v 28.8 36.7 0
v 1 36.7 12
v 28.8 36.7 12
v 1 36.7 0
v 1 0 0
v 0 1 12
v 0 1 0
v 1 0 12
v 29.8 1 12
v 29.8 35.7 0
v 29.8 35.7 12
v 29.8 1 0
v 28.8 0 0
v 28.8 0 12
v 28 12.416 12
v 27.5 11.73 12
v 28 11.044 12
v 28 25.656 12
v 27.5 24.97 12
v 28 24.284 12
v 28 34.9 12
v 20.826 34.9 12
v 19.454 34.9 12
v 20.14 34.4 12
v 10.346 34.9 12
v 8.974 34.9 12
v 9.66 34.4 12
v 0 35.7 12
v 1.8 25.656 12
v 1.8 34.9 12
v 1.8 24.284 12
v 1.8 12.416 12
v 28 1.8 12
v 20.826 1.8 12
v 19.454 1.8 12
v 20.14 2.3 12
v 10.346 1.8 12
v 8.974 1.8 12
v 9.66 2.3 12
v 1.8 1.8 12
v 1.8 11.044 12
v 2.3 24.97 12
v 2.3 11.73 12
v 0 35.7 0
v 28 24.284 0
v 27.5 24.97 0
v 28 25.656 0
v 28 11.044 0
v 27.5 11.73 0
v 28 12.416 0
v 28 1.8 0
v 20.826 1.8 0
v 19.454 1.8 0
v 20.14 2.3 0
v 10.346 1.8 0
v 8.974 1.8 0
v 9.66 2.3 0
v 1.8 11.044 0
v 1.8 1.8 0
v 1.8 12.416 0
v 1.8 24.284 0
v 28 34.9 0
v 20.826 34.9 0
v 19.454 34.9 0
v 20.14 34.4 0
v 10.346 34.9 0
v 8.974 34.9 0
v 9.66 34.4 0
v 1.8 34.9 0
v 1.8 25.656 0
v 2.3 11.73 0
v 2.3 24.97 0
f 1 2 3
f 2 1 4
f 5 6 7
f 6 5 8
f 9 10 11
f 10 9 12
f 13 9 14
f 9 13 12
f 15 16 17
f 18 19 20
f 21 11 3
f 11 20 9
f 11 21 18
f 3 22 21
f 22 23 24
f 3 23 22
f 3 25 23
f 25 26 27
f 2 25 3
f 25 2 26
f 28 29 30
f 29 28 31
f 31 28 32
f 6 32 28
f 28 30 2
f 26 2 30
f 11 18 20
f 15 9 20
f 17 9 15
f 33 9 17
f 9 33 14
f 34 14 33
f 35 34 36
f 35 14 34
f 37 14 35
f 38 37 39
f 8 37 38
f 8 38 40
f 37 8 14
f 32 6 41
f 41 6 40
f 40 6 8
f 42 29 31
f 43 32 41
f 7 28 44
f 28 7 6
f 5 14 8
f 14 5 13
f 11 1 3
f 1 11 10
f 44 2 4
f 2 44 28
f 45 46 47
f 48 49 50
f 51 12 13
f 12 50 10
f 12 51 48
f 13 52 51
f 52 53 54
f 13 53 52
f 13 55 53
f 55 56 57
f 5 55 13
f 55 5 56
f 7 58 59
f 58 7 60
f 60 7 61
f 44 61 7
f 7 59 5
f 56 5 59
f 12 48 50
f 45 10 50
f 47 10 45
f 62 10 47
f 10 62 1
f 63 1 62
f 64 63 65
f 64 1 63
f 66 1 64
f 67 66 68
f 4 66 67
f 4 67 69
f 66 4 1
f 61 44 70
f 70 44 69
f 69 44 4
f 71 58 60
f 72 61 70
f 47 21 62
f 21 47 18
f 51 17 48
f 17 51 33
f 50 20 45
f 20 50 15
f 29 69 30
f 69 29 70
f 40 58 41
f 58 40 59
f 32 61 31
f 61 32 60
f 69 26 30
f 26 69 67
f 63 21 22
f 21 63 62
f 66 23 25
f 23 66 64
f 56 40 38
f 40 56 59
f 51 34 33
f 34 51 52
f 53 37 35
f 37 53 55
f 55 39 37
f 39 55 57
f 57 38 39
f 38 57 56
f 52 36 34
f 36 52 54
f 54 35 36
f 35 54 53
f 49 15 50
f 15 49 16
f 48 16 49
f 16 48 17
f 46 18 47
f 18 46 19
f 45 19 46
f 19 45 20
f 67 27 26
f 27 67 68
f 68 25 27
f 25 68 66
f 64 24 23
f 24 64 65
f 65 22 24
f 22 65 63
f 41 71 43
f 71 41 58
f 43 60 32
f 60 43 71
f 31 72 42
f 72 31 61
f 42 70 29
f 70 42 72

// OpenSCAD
// file: pico_case.scad
// =====================================================================
// Case for a Raspberry Pi Pico 2 with soldered pin headers (pins pointing DOWN)
// and DuPont jumper wires plugged onto the pins.
// Gehaeuse fuer einen Pico 2 mit angeloeteten Stiftleisten (Pins nach UNTEN)
// und aufgesteckten DuPont-Kabeln.
//
//   TRAY: Pico rests on 4 standoffs with pegs; the DuPont plugs hang into the space
//         below the board; the wires leave through a slot in the end wall.
//   LID:  closes the top, presses the Pico down with 4 posts, window over BOOTSEL + LED.
//
// openscad -D 'part="tray"' -o pico_tray.stl pico_case.scad
// part = "assembly" | "tray" | "lid"
// =====================================================================

part = "assembly";

/* ---- Pico 2 (official mechanical drawing) ---- */
pico_l = 51;  pico_w = 21;  pico_t = 1.0;
hole_x = [2.0, 49.0];  hole_y = [4.8, 16.2];  hole_d = 2.1;   // mounting holes, from the USB end
usb_w_open = 12;   // opening for the plug (overmold), not just the socket
usb_h_open = 7.5;
usb_below  = 2.2;  // opening reaches this far below the board top (plug overmold is centred on the socket)
bootsel_x  = 12.5; // centre of the BOOTSEL window, from the USB end (button sits ~12-13 mm in)
bootsel_win = [12, 11];

/* ---- what hangs below the board: MEASURE (header plastic + DuPont plug + wire bend) ---- */
under_pcb = 24;    // 2.5 header plastic + 14 DuPont housing + ~7 mm for the wires to bend sideways
above_pcb = 4.5;   // space above the board top (USB socket ~3 mm)

/* ---- case ---- */
wall = 2.0;  floor_t = 1.6;  top_t = 1.6;
clr  = 0.4;        // around the board
extra_l = 10;      // extra room beyond the far end of the Pico (small parts, wire bends)
fit  = 0.2;        // lid rim play
lip_h = 3.0;       // lid rim depth

/* ---- wire exit ---- */
exit_end  = true;  // slot in the end wall opposite the USB socket
exit_side = false; // additional slot in one long side
exit_w = 20;  exit_h = 12;

// ---------------------------------------------------------------------
in_l = pico_l + 2 * clr + extra_l;
in_w = pico_w + 2 * clr;
out_l = in_l + 2 * wall;
out_w = in_w + 2 * wall;
z_pcb_bot = floor_t + under_pcb;
z_pcb_top = z_pcb_bot + pico_t;
z_lid     = z_pcb_top + above_pcb;          // lid underside = tray wall top
total_h   = z_lid + top_t;
bx = wall + clr;  by = wall + clr;          // board origin (USB end at x = bx)
echo(str("Pico case outer size: ", out_l, " x ", out_w, " x ", total_h, " mm"));

module tray() {
    difference() {
        cube([out_l, out_w, z_lid]);
        translate([wall, wall, floor_t]) cube([in_l, in_w, z_lid]);
        // USB opening (open towards the top, the lid closes it)
        translate([-1, by + pico_w / 2 - usb_w_open / 2, z_pcb_top - usb_below]) cube([wall + 2, usb_w_open, z_lid]);
        // wire exits at floor level
        if (exit_end)  translate([out_l - wall - 1, (out_w - exit_w) / 2, floor_t]) cube([wall + 2, exit_w, exit_h]);
        if (exit_side) translate([bx + pico_l / 2 - exit_w / 2, -1, floor_t]) cube([exit_w, wall + 2, exit_h]);
    }
    // standoffs with pegs into the mounting holes (thin enough to clear the DuPont plugs in the pin rows)
    for (x = hole_x, y = hole_y) translate([bx + x, by + y, 0]) {
        cylinder(d = 3.2, h = z_pcb_bot, $fn = 32);
        cylinder(d1 = 7, d2 = 3.2, h = 6, $fn = 32);          // wide foot below the DuPont plugs: stiffer, prints better
        cylinder(d = hole_d - 0.35, h = z_pcb_bot + pico_t + 0.8, $fn = 24);
    }
}

module lid() {
    difference() {
        union() {
            translate([0, 0, z_lid]) cube([out_l, out_w, top_t]);
            // rim inside the walls on three sides (the USB end stays open for the plug)
            difference() {
                translate([wall + fit, wall + fit, z_lid - lip_h]) cube([in_l - 2 * fit, in_w - 2 * fit, lip_h + 0.01]);
                translate([wall + fit - 1, wall + fit + 1.2, z_lid - lip_h - 1]) cube([in_l - 2 * fit - 0.2, in_w - 2 * fit - 2.4, lip_h + 2]);   // open at the USB end
            }
            // posts pressing the board onto the standoffs (hollow: the pegs poke into them)
            for (x = hole_x, y = hole_y) translate([bx + x, by + y, z_pcb_top + 0.1])
                cylinder(d = 3.2, h = z_lid - z_pcb_top, $fn = 32);
        }
        for (x = hole_x, y = hole_y) translate([bx + x, by + y, z_pcb_top - 1]) cylinder(d = hole_d + 0.3, h = 2.0, $fn = 24);
        // BOOTSEL / LED window
        translate([bx + bootsel_x - bootsel_win[0] / 2, by + pico_w / 2 - bootsel_win[1] / 2, z_lid - 1])
            cube([bootsel_win[0], bootsel_win[1], top_t + 2]);
    }
}

module pico_dummy() {
    color("#2e7d32") translate([bx, by, z_pcb_bot]) difference() {
        cube([pico_l, pico_w, pico_t]);
        for (x = hole_x, y = hole_y) translate([x, y, -1]) cylinder(d = hole_d, h = 3, $fn = 16);
    }
    color("#bbbbbb") translate([bx - 1.3, by + pico_w / 2 - 4, z_pcb_top]) cube([5.7, 8, 2.8]);   // USB socket
    for (i = [0:19], row = [1.61, pico_w - 1.61]) {                                              // header + DuPont plugs
        color("#222222") translate([bx + 1.37 + i * 2.54 - 1.27, by + row - 1.27, z_pcb_bot - 2.5]) cube([2.54, 2.54, 2.5]);
        color("#1565c0") translate([bx + 1.37 + i * 2.54 - 1.25, by + row - 1.25, z_pcb_bot - 2.5 - 14]) cube([2.5, 2.5, 14]);
    }
}

// print orientation: lid upside down (top face on the bed)
module print_lid() { translate([0, out_w, total_h]) rotate([180, 0, 0]) children(); }

if (part == "assembly") { color("#3a3a3a") tray(); pico_dummy(); color("#9e9e9e", 0.6) translate([0, 0, 15]) lid(); }
if (part == "tray") tray();
if (part == "lid")  print_lid() lid();
if (part == "check") { tray(); pico_dummy(); lid(); }
// main file
// =====================================================================
// Clip ring for the Pico case: a closed rectangular band that is pushed over the
// assembled case from one end and holds the lid on. Print one (or two).
// Klemmring fuer das Pico-Gehaeuse: wird vom Ende her ueber das zusammengebaute
// Gehaeuse geschoben und haelt den Deckel. Einen (oder zwei) drucken.
//
// part = "clip" | "clip_assembly"
// =====================================================================
include <pico_case.scad>
part = "clip";

r_play  = 0.2;     // play around the case
r_wall  = 1.8;     // ring wall
r_width = 12;      // band width along the case
r_crush = 0.3;     // crush ribs: they deform a little and hold the ring in place
r_pos   = 26;      // assembly preview: distance of the ring from the USB end (BOOTSEL window ends at ~21 mm)

iw = out_w + 2 * r_play;      // inner width  (across the case)
ih = total_h + 2 * r_play;    // inner height (tray bottom to lid top)

// ring lying flat: band width = z, case cross-section in x/y
module clip_ring() {
    difference() {
        translate([-r_wall, -r_wall, 0]) offset_box(iw + 2 * r_wall, ih + 2 * r_wall, r_width, 1.0);
        translate([0, 0, -1]) cube([iw, ih, r_width + 2]);
    }
    // crush ribs on all four inner faces, running along the sliding direction
    for (f = [0 : 3], t = [0.3, 0.7]) {
        L = (f % 2 == 0) ? iw : ih;
        pos = L * t;
        if (f == 0) translate([pos, 0, 0])  rib(0);      // bottom face (y = 0), points +y
        if (f == 1) translate([iw, pos, 0]) rib(90);     // right face, points -x
        if (f == 2) translate([pos, ih, 0]) rib(180);    // top face, points -y
        if (f == 3) translate([0, pos, 0])  rib(270);    // left face, points +x
    }
}
module rib(a) {
    rotate([0, 0, a]) linear_extrude(r_width) polygon([[-0.7, -0.01], [0.7, -0.01], [0, r_crush + r_play]]);
}
module offset_box(x, y, z, r) {                  // box with rounded vertical edges
    translate([r, r, 0]) linear_extrude(z) offset(r = r) square([x - 2 * r, y - 2 * r]);
}

if (part == "clip") translate([r_wall, r_wall, 0]) clip_ring();     // print lying flat, no supports
if (part == "clip_assembly") {
    color("#3a3a3a") tray(); color("#9e9e9e") lid();
    // ring placed around the case: ring x -> case y, ring y -> case z, ring z -> case x
    color("#e65100") translate([r_pos, -r_play, -r_play]) multmatrix([[0,0,1,0],[1,0,0,0],[0,1,0,0],[0,0,0,1]]) clip_ring();
}
if (part == "ring_raw") translate([r_pos, -r_play, -r_play]) multmatrix([[0,0,1,0],[1,0,0,0],[0,1,0,0],[0,0,0,1]]) clip_ring();
